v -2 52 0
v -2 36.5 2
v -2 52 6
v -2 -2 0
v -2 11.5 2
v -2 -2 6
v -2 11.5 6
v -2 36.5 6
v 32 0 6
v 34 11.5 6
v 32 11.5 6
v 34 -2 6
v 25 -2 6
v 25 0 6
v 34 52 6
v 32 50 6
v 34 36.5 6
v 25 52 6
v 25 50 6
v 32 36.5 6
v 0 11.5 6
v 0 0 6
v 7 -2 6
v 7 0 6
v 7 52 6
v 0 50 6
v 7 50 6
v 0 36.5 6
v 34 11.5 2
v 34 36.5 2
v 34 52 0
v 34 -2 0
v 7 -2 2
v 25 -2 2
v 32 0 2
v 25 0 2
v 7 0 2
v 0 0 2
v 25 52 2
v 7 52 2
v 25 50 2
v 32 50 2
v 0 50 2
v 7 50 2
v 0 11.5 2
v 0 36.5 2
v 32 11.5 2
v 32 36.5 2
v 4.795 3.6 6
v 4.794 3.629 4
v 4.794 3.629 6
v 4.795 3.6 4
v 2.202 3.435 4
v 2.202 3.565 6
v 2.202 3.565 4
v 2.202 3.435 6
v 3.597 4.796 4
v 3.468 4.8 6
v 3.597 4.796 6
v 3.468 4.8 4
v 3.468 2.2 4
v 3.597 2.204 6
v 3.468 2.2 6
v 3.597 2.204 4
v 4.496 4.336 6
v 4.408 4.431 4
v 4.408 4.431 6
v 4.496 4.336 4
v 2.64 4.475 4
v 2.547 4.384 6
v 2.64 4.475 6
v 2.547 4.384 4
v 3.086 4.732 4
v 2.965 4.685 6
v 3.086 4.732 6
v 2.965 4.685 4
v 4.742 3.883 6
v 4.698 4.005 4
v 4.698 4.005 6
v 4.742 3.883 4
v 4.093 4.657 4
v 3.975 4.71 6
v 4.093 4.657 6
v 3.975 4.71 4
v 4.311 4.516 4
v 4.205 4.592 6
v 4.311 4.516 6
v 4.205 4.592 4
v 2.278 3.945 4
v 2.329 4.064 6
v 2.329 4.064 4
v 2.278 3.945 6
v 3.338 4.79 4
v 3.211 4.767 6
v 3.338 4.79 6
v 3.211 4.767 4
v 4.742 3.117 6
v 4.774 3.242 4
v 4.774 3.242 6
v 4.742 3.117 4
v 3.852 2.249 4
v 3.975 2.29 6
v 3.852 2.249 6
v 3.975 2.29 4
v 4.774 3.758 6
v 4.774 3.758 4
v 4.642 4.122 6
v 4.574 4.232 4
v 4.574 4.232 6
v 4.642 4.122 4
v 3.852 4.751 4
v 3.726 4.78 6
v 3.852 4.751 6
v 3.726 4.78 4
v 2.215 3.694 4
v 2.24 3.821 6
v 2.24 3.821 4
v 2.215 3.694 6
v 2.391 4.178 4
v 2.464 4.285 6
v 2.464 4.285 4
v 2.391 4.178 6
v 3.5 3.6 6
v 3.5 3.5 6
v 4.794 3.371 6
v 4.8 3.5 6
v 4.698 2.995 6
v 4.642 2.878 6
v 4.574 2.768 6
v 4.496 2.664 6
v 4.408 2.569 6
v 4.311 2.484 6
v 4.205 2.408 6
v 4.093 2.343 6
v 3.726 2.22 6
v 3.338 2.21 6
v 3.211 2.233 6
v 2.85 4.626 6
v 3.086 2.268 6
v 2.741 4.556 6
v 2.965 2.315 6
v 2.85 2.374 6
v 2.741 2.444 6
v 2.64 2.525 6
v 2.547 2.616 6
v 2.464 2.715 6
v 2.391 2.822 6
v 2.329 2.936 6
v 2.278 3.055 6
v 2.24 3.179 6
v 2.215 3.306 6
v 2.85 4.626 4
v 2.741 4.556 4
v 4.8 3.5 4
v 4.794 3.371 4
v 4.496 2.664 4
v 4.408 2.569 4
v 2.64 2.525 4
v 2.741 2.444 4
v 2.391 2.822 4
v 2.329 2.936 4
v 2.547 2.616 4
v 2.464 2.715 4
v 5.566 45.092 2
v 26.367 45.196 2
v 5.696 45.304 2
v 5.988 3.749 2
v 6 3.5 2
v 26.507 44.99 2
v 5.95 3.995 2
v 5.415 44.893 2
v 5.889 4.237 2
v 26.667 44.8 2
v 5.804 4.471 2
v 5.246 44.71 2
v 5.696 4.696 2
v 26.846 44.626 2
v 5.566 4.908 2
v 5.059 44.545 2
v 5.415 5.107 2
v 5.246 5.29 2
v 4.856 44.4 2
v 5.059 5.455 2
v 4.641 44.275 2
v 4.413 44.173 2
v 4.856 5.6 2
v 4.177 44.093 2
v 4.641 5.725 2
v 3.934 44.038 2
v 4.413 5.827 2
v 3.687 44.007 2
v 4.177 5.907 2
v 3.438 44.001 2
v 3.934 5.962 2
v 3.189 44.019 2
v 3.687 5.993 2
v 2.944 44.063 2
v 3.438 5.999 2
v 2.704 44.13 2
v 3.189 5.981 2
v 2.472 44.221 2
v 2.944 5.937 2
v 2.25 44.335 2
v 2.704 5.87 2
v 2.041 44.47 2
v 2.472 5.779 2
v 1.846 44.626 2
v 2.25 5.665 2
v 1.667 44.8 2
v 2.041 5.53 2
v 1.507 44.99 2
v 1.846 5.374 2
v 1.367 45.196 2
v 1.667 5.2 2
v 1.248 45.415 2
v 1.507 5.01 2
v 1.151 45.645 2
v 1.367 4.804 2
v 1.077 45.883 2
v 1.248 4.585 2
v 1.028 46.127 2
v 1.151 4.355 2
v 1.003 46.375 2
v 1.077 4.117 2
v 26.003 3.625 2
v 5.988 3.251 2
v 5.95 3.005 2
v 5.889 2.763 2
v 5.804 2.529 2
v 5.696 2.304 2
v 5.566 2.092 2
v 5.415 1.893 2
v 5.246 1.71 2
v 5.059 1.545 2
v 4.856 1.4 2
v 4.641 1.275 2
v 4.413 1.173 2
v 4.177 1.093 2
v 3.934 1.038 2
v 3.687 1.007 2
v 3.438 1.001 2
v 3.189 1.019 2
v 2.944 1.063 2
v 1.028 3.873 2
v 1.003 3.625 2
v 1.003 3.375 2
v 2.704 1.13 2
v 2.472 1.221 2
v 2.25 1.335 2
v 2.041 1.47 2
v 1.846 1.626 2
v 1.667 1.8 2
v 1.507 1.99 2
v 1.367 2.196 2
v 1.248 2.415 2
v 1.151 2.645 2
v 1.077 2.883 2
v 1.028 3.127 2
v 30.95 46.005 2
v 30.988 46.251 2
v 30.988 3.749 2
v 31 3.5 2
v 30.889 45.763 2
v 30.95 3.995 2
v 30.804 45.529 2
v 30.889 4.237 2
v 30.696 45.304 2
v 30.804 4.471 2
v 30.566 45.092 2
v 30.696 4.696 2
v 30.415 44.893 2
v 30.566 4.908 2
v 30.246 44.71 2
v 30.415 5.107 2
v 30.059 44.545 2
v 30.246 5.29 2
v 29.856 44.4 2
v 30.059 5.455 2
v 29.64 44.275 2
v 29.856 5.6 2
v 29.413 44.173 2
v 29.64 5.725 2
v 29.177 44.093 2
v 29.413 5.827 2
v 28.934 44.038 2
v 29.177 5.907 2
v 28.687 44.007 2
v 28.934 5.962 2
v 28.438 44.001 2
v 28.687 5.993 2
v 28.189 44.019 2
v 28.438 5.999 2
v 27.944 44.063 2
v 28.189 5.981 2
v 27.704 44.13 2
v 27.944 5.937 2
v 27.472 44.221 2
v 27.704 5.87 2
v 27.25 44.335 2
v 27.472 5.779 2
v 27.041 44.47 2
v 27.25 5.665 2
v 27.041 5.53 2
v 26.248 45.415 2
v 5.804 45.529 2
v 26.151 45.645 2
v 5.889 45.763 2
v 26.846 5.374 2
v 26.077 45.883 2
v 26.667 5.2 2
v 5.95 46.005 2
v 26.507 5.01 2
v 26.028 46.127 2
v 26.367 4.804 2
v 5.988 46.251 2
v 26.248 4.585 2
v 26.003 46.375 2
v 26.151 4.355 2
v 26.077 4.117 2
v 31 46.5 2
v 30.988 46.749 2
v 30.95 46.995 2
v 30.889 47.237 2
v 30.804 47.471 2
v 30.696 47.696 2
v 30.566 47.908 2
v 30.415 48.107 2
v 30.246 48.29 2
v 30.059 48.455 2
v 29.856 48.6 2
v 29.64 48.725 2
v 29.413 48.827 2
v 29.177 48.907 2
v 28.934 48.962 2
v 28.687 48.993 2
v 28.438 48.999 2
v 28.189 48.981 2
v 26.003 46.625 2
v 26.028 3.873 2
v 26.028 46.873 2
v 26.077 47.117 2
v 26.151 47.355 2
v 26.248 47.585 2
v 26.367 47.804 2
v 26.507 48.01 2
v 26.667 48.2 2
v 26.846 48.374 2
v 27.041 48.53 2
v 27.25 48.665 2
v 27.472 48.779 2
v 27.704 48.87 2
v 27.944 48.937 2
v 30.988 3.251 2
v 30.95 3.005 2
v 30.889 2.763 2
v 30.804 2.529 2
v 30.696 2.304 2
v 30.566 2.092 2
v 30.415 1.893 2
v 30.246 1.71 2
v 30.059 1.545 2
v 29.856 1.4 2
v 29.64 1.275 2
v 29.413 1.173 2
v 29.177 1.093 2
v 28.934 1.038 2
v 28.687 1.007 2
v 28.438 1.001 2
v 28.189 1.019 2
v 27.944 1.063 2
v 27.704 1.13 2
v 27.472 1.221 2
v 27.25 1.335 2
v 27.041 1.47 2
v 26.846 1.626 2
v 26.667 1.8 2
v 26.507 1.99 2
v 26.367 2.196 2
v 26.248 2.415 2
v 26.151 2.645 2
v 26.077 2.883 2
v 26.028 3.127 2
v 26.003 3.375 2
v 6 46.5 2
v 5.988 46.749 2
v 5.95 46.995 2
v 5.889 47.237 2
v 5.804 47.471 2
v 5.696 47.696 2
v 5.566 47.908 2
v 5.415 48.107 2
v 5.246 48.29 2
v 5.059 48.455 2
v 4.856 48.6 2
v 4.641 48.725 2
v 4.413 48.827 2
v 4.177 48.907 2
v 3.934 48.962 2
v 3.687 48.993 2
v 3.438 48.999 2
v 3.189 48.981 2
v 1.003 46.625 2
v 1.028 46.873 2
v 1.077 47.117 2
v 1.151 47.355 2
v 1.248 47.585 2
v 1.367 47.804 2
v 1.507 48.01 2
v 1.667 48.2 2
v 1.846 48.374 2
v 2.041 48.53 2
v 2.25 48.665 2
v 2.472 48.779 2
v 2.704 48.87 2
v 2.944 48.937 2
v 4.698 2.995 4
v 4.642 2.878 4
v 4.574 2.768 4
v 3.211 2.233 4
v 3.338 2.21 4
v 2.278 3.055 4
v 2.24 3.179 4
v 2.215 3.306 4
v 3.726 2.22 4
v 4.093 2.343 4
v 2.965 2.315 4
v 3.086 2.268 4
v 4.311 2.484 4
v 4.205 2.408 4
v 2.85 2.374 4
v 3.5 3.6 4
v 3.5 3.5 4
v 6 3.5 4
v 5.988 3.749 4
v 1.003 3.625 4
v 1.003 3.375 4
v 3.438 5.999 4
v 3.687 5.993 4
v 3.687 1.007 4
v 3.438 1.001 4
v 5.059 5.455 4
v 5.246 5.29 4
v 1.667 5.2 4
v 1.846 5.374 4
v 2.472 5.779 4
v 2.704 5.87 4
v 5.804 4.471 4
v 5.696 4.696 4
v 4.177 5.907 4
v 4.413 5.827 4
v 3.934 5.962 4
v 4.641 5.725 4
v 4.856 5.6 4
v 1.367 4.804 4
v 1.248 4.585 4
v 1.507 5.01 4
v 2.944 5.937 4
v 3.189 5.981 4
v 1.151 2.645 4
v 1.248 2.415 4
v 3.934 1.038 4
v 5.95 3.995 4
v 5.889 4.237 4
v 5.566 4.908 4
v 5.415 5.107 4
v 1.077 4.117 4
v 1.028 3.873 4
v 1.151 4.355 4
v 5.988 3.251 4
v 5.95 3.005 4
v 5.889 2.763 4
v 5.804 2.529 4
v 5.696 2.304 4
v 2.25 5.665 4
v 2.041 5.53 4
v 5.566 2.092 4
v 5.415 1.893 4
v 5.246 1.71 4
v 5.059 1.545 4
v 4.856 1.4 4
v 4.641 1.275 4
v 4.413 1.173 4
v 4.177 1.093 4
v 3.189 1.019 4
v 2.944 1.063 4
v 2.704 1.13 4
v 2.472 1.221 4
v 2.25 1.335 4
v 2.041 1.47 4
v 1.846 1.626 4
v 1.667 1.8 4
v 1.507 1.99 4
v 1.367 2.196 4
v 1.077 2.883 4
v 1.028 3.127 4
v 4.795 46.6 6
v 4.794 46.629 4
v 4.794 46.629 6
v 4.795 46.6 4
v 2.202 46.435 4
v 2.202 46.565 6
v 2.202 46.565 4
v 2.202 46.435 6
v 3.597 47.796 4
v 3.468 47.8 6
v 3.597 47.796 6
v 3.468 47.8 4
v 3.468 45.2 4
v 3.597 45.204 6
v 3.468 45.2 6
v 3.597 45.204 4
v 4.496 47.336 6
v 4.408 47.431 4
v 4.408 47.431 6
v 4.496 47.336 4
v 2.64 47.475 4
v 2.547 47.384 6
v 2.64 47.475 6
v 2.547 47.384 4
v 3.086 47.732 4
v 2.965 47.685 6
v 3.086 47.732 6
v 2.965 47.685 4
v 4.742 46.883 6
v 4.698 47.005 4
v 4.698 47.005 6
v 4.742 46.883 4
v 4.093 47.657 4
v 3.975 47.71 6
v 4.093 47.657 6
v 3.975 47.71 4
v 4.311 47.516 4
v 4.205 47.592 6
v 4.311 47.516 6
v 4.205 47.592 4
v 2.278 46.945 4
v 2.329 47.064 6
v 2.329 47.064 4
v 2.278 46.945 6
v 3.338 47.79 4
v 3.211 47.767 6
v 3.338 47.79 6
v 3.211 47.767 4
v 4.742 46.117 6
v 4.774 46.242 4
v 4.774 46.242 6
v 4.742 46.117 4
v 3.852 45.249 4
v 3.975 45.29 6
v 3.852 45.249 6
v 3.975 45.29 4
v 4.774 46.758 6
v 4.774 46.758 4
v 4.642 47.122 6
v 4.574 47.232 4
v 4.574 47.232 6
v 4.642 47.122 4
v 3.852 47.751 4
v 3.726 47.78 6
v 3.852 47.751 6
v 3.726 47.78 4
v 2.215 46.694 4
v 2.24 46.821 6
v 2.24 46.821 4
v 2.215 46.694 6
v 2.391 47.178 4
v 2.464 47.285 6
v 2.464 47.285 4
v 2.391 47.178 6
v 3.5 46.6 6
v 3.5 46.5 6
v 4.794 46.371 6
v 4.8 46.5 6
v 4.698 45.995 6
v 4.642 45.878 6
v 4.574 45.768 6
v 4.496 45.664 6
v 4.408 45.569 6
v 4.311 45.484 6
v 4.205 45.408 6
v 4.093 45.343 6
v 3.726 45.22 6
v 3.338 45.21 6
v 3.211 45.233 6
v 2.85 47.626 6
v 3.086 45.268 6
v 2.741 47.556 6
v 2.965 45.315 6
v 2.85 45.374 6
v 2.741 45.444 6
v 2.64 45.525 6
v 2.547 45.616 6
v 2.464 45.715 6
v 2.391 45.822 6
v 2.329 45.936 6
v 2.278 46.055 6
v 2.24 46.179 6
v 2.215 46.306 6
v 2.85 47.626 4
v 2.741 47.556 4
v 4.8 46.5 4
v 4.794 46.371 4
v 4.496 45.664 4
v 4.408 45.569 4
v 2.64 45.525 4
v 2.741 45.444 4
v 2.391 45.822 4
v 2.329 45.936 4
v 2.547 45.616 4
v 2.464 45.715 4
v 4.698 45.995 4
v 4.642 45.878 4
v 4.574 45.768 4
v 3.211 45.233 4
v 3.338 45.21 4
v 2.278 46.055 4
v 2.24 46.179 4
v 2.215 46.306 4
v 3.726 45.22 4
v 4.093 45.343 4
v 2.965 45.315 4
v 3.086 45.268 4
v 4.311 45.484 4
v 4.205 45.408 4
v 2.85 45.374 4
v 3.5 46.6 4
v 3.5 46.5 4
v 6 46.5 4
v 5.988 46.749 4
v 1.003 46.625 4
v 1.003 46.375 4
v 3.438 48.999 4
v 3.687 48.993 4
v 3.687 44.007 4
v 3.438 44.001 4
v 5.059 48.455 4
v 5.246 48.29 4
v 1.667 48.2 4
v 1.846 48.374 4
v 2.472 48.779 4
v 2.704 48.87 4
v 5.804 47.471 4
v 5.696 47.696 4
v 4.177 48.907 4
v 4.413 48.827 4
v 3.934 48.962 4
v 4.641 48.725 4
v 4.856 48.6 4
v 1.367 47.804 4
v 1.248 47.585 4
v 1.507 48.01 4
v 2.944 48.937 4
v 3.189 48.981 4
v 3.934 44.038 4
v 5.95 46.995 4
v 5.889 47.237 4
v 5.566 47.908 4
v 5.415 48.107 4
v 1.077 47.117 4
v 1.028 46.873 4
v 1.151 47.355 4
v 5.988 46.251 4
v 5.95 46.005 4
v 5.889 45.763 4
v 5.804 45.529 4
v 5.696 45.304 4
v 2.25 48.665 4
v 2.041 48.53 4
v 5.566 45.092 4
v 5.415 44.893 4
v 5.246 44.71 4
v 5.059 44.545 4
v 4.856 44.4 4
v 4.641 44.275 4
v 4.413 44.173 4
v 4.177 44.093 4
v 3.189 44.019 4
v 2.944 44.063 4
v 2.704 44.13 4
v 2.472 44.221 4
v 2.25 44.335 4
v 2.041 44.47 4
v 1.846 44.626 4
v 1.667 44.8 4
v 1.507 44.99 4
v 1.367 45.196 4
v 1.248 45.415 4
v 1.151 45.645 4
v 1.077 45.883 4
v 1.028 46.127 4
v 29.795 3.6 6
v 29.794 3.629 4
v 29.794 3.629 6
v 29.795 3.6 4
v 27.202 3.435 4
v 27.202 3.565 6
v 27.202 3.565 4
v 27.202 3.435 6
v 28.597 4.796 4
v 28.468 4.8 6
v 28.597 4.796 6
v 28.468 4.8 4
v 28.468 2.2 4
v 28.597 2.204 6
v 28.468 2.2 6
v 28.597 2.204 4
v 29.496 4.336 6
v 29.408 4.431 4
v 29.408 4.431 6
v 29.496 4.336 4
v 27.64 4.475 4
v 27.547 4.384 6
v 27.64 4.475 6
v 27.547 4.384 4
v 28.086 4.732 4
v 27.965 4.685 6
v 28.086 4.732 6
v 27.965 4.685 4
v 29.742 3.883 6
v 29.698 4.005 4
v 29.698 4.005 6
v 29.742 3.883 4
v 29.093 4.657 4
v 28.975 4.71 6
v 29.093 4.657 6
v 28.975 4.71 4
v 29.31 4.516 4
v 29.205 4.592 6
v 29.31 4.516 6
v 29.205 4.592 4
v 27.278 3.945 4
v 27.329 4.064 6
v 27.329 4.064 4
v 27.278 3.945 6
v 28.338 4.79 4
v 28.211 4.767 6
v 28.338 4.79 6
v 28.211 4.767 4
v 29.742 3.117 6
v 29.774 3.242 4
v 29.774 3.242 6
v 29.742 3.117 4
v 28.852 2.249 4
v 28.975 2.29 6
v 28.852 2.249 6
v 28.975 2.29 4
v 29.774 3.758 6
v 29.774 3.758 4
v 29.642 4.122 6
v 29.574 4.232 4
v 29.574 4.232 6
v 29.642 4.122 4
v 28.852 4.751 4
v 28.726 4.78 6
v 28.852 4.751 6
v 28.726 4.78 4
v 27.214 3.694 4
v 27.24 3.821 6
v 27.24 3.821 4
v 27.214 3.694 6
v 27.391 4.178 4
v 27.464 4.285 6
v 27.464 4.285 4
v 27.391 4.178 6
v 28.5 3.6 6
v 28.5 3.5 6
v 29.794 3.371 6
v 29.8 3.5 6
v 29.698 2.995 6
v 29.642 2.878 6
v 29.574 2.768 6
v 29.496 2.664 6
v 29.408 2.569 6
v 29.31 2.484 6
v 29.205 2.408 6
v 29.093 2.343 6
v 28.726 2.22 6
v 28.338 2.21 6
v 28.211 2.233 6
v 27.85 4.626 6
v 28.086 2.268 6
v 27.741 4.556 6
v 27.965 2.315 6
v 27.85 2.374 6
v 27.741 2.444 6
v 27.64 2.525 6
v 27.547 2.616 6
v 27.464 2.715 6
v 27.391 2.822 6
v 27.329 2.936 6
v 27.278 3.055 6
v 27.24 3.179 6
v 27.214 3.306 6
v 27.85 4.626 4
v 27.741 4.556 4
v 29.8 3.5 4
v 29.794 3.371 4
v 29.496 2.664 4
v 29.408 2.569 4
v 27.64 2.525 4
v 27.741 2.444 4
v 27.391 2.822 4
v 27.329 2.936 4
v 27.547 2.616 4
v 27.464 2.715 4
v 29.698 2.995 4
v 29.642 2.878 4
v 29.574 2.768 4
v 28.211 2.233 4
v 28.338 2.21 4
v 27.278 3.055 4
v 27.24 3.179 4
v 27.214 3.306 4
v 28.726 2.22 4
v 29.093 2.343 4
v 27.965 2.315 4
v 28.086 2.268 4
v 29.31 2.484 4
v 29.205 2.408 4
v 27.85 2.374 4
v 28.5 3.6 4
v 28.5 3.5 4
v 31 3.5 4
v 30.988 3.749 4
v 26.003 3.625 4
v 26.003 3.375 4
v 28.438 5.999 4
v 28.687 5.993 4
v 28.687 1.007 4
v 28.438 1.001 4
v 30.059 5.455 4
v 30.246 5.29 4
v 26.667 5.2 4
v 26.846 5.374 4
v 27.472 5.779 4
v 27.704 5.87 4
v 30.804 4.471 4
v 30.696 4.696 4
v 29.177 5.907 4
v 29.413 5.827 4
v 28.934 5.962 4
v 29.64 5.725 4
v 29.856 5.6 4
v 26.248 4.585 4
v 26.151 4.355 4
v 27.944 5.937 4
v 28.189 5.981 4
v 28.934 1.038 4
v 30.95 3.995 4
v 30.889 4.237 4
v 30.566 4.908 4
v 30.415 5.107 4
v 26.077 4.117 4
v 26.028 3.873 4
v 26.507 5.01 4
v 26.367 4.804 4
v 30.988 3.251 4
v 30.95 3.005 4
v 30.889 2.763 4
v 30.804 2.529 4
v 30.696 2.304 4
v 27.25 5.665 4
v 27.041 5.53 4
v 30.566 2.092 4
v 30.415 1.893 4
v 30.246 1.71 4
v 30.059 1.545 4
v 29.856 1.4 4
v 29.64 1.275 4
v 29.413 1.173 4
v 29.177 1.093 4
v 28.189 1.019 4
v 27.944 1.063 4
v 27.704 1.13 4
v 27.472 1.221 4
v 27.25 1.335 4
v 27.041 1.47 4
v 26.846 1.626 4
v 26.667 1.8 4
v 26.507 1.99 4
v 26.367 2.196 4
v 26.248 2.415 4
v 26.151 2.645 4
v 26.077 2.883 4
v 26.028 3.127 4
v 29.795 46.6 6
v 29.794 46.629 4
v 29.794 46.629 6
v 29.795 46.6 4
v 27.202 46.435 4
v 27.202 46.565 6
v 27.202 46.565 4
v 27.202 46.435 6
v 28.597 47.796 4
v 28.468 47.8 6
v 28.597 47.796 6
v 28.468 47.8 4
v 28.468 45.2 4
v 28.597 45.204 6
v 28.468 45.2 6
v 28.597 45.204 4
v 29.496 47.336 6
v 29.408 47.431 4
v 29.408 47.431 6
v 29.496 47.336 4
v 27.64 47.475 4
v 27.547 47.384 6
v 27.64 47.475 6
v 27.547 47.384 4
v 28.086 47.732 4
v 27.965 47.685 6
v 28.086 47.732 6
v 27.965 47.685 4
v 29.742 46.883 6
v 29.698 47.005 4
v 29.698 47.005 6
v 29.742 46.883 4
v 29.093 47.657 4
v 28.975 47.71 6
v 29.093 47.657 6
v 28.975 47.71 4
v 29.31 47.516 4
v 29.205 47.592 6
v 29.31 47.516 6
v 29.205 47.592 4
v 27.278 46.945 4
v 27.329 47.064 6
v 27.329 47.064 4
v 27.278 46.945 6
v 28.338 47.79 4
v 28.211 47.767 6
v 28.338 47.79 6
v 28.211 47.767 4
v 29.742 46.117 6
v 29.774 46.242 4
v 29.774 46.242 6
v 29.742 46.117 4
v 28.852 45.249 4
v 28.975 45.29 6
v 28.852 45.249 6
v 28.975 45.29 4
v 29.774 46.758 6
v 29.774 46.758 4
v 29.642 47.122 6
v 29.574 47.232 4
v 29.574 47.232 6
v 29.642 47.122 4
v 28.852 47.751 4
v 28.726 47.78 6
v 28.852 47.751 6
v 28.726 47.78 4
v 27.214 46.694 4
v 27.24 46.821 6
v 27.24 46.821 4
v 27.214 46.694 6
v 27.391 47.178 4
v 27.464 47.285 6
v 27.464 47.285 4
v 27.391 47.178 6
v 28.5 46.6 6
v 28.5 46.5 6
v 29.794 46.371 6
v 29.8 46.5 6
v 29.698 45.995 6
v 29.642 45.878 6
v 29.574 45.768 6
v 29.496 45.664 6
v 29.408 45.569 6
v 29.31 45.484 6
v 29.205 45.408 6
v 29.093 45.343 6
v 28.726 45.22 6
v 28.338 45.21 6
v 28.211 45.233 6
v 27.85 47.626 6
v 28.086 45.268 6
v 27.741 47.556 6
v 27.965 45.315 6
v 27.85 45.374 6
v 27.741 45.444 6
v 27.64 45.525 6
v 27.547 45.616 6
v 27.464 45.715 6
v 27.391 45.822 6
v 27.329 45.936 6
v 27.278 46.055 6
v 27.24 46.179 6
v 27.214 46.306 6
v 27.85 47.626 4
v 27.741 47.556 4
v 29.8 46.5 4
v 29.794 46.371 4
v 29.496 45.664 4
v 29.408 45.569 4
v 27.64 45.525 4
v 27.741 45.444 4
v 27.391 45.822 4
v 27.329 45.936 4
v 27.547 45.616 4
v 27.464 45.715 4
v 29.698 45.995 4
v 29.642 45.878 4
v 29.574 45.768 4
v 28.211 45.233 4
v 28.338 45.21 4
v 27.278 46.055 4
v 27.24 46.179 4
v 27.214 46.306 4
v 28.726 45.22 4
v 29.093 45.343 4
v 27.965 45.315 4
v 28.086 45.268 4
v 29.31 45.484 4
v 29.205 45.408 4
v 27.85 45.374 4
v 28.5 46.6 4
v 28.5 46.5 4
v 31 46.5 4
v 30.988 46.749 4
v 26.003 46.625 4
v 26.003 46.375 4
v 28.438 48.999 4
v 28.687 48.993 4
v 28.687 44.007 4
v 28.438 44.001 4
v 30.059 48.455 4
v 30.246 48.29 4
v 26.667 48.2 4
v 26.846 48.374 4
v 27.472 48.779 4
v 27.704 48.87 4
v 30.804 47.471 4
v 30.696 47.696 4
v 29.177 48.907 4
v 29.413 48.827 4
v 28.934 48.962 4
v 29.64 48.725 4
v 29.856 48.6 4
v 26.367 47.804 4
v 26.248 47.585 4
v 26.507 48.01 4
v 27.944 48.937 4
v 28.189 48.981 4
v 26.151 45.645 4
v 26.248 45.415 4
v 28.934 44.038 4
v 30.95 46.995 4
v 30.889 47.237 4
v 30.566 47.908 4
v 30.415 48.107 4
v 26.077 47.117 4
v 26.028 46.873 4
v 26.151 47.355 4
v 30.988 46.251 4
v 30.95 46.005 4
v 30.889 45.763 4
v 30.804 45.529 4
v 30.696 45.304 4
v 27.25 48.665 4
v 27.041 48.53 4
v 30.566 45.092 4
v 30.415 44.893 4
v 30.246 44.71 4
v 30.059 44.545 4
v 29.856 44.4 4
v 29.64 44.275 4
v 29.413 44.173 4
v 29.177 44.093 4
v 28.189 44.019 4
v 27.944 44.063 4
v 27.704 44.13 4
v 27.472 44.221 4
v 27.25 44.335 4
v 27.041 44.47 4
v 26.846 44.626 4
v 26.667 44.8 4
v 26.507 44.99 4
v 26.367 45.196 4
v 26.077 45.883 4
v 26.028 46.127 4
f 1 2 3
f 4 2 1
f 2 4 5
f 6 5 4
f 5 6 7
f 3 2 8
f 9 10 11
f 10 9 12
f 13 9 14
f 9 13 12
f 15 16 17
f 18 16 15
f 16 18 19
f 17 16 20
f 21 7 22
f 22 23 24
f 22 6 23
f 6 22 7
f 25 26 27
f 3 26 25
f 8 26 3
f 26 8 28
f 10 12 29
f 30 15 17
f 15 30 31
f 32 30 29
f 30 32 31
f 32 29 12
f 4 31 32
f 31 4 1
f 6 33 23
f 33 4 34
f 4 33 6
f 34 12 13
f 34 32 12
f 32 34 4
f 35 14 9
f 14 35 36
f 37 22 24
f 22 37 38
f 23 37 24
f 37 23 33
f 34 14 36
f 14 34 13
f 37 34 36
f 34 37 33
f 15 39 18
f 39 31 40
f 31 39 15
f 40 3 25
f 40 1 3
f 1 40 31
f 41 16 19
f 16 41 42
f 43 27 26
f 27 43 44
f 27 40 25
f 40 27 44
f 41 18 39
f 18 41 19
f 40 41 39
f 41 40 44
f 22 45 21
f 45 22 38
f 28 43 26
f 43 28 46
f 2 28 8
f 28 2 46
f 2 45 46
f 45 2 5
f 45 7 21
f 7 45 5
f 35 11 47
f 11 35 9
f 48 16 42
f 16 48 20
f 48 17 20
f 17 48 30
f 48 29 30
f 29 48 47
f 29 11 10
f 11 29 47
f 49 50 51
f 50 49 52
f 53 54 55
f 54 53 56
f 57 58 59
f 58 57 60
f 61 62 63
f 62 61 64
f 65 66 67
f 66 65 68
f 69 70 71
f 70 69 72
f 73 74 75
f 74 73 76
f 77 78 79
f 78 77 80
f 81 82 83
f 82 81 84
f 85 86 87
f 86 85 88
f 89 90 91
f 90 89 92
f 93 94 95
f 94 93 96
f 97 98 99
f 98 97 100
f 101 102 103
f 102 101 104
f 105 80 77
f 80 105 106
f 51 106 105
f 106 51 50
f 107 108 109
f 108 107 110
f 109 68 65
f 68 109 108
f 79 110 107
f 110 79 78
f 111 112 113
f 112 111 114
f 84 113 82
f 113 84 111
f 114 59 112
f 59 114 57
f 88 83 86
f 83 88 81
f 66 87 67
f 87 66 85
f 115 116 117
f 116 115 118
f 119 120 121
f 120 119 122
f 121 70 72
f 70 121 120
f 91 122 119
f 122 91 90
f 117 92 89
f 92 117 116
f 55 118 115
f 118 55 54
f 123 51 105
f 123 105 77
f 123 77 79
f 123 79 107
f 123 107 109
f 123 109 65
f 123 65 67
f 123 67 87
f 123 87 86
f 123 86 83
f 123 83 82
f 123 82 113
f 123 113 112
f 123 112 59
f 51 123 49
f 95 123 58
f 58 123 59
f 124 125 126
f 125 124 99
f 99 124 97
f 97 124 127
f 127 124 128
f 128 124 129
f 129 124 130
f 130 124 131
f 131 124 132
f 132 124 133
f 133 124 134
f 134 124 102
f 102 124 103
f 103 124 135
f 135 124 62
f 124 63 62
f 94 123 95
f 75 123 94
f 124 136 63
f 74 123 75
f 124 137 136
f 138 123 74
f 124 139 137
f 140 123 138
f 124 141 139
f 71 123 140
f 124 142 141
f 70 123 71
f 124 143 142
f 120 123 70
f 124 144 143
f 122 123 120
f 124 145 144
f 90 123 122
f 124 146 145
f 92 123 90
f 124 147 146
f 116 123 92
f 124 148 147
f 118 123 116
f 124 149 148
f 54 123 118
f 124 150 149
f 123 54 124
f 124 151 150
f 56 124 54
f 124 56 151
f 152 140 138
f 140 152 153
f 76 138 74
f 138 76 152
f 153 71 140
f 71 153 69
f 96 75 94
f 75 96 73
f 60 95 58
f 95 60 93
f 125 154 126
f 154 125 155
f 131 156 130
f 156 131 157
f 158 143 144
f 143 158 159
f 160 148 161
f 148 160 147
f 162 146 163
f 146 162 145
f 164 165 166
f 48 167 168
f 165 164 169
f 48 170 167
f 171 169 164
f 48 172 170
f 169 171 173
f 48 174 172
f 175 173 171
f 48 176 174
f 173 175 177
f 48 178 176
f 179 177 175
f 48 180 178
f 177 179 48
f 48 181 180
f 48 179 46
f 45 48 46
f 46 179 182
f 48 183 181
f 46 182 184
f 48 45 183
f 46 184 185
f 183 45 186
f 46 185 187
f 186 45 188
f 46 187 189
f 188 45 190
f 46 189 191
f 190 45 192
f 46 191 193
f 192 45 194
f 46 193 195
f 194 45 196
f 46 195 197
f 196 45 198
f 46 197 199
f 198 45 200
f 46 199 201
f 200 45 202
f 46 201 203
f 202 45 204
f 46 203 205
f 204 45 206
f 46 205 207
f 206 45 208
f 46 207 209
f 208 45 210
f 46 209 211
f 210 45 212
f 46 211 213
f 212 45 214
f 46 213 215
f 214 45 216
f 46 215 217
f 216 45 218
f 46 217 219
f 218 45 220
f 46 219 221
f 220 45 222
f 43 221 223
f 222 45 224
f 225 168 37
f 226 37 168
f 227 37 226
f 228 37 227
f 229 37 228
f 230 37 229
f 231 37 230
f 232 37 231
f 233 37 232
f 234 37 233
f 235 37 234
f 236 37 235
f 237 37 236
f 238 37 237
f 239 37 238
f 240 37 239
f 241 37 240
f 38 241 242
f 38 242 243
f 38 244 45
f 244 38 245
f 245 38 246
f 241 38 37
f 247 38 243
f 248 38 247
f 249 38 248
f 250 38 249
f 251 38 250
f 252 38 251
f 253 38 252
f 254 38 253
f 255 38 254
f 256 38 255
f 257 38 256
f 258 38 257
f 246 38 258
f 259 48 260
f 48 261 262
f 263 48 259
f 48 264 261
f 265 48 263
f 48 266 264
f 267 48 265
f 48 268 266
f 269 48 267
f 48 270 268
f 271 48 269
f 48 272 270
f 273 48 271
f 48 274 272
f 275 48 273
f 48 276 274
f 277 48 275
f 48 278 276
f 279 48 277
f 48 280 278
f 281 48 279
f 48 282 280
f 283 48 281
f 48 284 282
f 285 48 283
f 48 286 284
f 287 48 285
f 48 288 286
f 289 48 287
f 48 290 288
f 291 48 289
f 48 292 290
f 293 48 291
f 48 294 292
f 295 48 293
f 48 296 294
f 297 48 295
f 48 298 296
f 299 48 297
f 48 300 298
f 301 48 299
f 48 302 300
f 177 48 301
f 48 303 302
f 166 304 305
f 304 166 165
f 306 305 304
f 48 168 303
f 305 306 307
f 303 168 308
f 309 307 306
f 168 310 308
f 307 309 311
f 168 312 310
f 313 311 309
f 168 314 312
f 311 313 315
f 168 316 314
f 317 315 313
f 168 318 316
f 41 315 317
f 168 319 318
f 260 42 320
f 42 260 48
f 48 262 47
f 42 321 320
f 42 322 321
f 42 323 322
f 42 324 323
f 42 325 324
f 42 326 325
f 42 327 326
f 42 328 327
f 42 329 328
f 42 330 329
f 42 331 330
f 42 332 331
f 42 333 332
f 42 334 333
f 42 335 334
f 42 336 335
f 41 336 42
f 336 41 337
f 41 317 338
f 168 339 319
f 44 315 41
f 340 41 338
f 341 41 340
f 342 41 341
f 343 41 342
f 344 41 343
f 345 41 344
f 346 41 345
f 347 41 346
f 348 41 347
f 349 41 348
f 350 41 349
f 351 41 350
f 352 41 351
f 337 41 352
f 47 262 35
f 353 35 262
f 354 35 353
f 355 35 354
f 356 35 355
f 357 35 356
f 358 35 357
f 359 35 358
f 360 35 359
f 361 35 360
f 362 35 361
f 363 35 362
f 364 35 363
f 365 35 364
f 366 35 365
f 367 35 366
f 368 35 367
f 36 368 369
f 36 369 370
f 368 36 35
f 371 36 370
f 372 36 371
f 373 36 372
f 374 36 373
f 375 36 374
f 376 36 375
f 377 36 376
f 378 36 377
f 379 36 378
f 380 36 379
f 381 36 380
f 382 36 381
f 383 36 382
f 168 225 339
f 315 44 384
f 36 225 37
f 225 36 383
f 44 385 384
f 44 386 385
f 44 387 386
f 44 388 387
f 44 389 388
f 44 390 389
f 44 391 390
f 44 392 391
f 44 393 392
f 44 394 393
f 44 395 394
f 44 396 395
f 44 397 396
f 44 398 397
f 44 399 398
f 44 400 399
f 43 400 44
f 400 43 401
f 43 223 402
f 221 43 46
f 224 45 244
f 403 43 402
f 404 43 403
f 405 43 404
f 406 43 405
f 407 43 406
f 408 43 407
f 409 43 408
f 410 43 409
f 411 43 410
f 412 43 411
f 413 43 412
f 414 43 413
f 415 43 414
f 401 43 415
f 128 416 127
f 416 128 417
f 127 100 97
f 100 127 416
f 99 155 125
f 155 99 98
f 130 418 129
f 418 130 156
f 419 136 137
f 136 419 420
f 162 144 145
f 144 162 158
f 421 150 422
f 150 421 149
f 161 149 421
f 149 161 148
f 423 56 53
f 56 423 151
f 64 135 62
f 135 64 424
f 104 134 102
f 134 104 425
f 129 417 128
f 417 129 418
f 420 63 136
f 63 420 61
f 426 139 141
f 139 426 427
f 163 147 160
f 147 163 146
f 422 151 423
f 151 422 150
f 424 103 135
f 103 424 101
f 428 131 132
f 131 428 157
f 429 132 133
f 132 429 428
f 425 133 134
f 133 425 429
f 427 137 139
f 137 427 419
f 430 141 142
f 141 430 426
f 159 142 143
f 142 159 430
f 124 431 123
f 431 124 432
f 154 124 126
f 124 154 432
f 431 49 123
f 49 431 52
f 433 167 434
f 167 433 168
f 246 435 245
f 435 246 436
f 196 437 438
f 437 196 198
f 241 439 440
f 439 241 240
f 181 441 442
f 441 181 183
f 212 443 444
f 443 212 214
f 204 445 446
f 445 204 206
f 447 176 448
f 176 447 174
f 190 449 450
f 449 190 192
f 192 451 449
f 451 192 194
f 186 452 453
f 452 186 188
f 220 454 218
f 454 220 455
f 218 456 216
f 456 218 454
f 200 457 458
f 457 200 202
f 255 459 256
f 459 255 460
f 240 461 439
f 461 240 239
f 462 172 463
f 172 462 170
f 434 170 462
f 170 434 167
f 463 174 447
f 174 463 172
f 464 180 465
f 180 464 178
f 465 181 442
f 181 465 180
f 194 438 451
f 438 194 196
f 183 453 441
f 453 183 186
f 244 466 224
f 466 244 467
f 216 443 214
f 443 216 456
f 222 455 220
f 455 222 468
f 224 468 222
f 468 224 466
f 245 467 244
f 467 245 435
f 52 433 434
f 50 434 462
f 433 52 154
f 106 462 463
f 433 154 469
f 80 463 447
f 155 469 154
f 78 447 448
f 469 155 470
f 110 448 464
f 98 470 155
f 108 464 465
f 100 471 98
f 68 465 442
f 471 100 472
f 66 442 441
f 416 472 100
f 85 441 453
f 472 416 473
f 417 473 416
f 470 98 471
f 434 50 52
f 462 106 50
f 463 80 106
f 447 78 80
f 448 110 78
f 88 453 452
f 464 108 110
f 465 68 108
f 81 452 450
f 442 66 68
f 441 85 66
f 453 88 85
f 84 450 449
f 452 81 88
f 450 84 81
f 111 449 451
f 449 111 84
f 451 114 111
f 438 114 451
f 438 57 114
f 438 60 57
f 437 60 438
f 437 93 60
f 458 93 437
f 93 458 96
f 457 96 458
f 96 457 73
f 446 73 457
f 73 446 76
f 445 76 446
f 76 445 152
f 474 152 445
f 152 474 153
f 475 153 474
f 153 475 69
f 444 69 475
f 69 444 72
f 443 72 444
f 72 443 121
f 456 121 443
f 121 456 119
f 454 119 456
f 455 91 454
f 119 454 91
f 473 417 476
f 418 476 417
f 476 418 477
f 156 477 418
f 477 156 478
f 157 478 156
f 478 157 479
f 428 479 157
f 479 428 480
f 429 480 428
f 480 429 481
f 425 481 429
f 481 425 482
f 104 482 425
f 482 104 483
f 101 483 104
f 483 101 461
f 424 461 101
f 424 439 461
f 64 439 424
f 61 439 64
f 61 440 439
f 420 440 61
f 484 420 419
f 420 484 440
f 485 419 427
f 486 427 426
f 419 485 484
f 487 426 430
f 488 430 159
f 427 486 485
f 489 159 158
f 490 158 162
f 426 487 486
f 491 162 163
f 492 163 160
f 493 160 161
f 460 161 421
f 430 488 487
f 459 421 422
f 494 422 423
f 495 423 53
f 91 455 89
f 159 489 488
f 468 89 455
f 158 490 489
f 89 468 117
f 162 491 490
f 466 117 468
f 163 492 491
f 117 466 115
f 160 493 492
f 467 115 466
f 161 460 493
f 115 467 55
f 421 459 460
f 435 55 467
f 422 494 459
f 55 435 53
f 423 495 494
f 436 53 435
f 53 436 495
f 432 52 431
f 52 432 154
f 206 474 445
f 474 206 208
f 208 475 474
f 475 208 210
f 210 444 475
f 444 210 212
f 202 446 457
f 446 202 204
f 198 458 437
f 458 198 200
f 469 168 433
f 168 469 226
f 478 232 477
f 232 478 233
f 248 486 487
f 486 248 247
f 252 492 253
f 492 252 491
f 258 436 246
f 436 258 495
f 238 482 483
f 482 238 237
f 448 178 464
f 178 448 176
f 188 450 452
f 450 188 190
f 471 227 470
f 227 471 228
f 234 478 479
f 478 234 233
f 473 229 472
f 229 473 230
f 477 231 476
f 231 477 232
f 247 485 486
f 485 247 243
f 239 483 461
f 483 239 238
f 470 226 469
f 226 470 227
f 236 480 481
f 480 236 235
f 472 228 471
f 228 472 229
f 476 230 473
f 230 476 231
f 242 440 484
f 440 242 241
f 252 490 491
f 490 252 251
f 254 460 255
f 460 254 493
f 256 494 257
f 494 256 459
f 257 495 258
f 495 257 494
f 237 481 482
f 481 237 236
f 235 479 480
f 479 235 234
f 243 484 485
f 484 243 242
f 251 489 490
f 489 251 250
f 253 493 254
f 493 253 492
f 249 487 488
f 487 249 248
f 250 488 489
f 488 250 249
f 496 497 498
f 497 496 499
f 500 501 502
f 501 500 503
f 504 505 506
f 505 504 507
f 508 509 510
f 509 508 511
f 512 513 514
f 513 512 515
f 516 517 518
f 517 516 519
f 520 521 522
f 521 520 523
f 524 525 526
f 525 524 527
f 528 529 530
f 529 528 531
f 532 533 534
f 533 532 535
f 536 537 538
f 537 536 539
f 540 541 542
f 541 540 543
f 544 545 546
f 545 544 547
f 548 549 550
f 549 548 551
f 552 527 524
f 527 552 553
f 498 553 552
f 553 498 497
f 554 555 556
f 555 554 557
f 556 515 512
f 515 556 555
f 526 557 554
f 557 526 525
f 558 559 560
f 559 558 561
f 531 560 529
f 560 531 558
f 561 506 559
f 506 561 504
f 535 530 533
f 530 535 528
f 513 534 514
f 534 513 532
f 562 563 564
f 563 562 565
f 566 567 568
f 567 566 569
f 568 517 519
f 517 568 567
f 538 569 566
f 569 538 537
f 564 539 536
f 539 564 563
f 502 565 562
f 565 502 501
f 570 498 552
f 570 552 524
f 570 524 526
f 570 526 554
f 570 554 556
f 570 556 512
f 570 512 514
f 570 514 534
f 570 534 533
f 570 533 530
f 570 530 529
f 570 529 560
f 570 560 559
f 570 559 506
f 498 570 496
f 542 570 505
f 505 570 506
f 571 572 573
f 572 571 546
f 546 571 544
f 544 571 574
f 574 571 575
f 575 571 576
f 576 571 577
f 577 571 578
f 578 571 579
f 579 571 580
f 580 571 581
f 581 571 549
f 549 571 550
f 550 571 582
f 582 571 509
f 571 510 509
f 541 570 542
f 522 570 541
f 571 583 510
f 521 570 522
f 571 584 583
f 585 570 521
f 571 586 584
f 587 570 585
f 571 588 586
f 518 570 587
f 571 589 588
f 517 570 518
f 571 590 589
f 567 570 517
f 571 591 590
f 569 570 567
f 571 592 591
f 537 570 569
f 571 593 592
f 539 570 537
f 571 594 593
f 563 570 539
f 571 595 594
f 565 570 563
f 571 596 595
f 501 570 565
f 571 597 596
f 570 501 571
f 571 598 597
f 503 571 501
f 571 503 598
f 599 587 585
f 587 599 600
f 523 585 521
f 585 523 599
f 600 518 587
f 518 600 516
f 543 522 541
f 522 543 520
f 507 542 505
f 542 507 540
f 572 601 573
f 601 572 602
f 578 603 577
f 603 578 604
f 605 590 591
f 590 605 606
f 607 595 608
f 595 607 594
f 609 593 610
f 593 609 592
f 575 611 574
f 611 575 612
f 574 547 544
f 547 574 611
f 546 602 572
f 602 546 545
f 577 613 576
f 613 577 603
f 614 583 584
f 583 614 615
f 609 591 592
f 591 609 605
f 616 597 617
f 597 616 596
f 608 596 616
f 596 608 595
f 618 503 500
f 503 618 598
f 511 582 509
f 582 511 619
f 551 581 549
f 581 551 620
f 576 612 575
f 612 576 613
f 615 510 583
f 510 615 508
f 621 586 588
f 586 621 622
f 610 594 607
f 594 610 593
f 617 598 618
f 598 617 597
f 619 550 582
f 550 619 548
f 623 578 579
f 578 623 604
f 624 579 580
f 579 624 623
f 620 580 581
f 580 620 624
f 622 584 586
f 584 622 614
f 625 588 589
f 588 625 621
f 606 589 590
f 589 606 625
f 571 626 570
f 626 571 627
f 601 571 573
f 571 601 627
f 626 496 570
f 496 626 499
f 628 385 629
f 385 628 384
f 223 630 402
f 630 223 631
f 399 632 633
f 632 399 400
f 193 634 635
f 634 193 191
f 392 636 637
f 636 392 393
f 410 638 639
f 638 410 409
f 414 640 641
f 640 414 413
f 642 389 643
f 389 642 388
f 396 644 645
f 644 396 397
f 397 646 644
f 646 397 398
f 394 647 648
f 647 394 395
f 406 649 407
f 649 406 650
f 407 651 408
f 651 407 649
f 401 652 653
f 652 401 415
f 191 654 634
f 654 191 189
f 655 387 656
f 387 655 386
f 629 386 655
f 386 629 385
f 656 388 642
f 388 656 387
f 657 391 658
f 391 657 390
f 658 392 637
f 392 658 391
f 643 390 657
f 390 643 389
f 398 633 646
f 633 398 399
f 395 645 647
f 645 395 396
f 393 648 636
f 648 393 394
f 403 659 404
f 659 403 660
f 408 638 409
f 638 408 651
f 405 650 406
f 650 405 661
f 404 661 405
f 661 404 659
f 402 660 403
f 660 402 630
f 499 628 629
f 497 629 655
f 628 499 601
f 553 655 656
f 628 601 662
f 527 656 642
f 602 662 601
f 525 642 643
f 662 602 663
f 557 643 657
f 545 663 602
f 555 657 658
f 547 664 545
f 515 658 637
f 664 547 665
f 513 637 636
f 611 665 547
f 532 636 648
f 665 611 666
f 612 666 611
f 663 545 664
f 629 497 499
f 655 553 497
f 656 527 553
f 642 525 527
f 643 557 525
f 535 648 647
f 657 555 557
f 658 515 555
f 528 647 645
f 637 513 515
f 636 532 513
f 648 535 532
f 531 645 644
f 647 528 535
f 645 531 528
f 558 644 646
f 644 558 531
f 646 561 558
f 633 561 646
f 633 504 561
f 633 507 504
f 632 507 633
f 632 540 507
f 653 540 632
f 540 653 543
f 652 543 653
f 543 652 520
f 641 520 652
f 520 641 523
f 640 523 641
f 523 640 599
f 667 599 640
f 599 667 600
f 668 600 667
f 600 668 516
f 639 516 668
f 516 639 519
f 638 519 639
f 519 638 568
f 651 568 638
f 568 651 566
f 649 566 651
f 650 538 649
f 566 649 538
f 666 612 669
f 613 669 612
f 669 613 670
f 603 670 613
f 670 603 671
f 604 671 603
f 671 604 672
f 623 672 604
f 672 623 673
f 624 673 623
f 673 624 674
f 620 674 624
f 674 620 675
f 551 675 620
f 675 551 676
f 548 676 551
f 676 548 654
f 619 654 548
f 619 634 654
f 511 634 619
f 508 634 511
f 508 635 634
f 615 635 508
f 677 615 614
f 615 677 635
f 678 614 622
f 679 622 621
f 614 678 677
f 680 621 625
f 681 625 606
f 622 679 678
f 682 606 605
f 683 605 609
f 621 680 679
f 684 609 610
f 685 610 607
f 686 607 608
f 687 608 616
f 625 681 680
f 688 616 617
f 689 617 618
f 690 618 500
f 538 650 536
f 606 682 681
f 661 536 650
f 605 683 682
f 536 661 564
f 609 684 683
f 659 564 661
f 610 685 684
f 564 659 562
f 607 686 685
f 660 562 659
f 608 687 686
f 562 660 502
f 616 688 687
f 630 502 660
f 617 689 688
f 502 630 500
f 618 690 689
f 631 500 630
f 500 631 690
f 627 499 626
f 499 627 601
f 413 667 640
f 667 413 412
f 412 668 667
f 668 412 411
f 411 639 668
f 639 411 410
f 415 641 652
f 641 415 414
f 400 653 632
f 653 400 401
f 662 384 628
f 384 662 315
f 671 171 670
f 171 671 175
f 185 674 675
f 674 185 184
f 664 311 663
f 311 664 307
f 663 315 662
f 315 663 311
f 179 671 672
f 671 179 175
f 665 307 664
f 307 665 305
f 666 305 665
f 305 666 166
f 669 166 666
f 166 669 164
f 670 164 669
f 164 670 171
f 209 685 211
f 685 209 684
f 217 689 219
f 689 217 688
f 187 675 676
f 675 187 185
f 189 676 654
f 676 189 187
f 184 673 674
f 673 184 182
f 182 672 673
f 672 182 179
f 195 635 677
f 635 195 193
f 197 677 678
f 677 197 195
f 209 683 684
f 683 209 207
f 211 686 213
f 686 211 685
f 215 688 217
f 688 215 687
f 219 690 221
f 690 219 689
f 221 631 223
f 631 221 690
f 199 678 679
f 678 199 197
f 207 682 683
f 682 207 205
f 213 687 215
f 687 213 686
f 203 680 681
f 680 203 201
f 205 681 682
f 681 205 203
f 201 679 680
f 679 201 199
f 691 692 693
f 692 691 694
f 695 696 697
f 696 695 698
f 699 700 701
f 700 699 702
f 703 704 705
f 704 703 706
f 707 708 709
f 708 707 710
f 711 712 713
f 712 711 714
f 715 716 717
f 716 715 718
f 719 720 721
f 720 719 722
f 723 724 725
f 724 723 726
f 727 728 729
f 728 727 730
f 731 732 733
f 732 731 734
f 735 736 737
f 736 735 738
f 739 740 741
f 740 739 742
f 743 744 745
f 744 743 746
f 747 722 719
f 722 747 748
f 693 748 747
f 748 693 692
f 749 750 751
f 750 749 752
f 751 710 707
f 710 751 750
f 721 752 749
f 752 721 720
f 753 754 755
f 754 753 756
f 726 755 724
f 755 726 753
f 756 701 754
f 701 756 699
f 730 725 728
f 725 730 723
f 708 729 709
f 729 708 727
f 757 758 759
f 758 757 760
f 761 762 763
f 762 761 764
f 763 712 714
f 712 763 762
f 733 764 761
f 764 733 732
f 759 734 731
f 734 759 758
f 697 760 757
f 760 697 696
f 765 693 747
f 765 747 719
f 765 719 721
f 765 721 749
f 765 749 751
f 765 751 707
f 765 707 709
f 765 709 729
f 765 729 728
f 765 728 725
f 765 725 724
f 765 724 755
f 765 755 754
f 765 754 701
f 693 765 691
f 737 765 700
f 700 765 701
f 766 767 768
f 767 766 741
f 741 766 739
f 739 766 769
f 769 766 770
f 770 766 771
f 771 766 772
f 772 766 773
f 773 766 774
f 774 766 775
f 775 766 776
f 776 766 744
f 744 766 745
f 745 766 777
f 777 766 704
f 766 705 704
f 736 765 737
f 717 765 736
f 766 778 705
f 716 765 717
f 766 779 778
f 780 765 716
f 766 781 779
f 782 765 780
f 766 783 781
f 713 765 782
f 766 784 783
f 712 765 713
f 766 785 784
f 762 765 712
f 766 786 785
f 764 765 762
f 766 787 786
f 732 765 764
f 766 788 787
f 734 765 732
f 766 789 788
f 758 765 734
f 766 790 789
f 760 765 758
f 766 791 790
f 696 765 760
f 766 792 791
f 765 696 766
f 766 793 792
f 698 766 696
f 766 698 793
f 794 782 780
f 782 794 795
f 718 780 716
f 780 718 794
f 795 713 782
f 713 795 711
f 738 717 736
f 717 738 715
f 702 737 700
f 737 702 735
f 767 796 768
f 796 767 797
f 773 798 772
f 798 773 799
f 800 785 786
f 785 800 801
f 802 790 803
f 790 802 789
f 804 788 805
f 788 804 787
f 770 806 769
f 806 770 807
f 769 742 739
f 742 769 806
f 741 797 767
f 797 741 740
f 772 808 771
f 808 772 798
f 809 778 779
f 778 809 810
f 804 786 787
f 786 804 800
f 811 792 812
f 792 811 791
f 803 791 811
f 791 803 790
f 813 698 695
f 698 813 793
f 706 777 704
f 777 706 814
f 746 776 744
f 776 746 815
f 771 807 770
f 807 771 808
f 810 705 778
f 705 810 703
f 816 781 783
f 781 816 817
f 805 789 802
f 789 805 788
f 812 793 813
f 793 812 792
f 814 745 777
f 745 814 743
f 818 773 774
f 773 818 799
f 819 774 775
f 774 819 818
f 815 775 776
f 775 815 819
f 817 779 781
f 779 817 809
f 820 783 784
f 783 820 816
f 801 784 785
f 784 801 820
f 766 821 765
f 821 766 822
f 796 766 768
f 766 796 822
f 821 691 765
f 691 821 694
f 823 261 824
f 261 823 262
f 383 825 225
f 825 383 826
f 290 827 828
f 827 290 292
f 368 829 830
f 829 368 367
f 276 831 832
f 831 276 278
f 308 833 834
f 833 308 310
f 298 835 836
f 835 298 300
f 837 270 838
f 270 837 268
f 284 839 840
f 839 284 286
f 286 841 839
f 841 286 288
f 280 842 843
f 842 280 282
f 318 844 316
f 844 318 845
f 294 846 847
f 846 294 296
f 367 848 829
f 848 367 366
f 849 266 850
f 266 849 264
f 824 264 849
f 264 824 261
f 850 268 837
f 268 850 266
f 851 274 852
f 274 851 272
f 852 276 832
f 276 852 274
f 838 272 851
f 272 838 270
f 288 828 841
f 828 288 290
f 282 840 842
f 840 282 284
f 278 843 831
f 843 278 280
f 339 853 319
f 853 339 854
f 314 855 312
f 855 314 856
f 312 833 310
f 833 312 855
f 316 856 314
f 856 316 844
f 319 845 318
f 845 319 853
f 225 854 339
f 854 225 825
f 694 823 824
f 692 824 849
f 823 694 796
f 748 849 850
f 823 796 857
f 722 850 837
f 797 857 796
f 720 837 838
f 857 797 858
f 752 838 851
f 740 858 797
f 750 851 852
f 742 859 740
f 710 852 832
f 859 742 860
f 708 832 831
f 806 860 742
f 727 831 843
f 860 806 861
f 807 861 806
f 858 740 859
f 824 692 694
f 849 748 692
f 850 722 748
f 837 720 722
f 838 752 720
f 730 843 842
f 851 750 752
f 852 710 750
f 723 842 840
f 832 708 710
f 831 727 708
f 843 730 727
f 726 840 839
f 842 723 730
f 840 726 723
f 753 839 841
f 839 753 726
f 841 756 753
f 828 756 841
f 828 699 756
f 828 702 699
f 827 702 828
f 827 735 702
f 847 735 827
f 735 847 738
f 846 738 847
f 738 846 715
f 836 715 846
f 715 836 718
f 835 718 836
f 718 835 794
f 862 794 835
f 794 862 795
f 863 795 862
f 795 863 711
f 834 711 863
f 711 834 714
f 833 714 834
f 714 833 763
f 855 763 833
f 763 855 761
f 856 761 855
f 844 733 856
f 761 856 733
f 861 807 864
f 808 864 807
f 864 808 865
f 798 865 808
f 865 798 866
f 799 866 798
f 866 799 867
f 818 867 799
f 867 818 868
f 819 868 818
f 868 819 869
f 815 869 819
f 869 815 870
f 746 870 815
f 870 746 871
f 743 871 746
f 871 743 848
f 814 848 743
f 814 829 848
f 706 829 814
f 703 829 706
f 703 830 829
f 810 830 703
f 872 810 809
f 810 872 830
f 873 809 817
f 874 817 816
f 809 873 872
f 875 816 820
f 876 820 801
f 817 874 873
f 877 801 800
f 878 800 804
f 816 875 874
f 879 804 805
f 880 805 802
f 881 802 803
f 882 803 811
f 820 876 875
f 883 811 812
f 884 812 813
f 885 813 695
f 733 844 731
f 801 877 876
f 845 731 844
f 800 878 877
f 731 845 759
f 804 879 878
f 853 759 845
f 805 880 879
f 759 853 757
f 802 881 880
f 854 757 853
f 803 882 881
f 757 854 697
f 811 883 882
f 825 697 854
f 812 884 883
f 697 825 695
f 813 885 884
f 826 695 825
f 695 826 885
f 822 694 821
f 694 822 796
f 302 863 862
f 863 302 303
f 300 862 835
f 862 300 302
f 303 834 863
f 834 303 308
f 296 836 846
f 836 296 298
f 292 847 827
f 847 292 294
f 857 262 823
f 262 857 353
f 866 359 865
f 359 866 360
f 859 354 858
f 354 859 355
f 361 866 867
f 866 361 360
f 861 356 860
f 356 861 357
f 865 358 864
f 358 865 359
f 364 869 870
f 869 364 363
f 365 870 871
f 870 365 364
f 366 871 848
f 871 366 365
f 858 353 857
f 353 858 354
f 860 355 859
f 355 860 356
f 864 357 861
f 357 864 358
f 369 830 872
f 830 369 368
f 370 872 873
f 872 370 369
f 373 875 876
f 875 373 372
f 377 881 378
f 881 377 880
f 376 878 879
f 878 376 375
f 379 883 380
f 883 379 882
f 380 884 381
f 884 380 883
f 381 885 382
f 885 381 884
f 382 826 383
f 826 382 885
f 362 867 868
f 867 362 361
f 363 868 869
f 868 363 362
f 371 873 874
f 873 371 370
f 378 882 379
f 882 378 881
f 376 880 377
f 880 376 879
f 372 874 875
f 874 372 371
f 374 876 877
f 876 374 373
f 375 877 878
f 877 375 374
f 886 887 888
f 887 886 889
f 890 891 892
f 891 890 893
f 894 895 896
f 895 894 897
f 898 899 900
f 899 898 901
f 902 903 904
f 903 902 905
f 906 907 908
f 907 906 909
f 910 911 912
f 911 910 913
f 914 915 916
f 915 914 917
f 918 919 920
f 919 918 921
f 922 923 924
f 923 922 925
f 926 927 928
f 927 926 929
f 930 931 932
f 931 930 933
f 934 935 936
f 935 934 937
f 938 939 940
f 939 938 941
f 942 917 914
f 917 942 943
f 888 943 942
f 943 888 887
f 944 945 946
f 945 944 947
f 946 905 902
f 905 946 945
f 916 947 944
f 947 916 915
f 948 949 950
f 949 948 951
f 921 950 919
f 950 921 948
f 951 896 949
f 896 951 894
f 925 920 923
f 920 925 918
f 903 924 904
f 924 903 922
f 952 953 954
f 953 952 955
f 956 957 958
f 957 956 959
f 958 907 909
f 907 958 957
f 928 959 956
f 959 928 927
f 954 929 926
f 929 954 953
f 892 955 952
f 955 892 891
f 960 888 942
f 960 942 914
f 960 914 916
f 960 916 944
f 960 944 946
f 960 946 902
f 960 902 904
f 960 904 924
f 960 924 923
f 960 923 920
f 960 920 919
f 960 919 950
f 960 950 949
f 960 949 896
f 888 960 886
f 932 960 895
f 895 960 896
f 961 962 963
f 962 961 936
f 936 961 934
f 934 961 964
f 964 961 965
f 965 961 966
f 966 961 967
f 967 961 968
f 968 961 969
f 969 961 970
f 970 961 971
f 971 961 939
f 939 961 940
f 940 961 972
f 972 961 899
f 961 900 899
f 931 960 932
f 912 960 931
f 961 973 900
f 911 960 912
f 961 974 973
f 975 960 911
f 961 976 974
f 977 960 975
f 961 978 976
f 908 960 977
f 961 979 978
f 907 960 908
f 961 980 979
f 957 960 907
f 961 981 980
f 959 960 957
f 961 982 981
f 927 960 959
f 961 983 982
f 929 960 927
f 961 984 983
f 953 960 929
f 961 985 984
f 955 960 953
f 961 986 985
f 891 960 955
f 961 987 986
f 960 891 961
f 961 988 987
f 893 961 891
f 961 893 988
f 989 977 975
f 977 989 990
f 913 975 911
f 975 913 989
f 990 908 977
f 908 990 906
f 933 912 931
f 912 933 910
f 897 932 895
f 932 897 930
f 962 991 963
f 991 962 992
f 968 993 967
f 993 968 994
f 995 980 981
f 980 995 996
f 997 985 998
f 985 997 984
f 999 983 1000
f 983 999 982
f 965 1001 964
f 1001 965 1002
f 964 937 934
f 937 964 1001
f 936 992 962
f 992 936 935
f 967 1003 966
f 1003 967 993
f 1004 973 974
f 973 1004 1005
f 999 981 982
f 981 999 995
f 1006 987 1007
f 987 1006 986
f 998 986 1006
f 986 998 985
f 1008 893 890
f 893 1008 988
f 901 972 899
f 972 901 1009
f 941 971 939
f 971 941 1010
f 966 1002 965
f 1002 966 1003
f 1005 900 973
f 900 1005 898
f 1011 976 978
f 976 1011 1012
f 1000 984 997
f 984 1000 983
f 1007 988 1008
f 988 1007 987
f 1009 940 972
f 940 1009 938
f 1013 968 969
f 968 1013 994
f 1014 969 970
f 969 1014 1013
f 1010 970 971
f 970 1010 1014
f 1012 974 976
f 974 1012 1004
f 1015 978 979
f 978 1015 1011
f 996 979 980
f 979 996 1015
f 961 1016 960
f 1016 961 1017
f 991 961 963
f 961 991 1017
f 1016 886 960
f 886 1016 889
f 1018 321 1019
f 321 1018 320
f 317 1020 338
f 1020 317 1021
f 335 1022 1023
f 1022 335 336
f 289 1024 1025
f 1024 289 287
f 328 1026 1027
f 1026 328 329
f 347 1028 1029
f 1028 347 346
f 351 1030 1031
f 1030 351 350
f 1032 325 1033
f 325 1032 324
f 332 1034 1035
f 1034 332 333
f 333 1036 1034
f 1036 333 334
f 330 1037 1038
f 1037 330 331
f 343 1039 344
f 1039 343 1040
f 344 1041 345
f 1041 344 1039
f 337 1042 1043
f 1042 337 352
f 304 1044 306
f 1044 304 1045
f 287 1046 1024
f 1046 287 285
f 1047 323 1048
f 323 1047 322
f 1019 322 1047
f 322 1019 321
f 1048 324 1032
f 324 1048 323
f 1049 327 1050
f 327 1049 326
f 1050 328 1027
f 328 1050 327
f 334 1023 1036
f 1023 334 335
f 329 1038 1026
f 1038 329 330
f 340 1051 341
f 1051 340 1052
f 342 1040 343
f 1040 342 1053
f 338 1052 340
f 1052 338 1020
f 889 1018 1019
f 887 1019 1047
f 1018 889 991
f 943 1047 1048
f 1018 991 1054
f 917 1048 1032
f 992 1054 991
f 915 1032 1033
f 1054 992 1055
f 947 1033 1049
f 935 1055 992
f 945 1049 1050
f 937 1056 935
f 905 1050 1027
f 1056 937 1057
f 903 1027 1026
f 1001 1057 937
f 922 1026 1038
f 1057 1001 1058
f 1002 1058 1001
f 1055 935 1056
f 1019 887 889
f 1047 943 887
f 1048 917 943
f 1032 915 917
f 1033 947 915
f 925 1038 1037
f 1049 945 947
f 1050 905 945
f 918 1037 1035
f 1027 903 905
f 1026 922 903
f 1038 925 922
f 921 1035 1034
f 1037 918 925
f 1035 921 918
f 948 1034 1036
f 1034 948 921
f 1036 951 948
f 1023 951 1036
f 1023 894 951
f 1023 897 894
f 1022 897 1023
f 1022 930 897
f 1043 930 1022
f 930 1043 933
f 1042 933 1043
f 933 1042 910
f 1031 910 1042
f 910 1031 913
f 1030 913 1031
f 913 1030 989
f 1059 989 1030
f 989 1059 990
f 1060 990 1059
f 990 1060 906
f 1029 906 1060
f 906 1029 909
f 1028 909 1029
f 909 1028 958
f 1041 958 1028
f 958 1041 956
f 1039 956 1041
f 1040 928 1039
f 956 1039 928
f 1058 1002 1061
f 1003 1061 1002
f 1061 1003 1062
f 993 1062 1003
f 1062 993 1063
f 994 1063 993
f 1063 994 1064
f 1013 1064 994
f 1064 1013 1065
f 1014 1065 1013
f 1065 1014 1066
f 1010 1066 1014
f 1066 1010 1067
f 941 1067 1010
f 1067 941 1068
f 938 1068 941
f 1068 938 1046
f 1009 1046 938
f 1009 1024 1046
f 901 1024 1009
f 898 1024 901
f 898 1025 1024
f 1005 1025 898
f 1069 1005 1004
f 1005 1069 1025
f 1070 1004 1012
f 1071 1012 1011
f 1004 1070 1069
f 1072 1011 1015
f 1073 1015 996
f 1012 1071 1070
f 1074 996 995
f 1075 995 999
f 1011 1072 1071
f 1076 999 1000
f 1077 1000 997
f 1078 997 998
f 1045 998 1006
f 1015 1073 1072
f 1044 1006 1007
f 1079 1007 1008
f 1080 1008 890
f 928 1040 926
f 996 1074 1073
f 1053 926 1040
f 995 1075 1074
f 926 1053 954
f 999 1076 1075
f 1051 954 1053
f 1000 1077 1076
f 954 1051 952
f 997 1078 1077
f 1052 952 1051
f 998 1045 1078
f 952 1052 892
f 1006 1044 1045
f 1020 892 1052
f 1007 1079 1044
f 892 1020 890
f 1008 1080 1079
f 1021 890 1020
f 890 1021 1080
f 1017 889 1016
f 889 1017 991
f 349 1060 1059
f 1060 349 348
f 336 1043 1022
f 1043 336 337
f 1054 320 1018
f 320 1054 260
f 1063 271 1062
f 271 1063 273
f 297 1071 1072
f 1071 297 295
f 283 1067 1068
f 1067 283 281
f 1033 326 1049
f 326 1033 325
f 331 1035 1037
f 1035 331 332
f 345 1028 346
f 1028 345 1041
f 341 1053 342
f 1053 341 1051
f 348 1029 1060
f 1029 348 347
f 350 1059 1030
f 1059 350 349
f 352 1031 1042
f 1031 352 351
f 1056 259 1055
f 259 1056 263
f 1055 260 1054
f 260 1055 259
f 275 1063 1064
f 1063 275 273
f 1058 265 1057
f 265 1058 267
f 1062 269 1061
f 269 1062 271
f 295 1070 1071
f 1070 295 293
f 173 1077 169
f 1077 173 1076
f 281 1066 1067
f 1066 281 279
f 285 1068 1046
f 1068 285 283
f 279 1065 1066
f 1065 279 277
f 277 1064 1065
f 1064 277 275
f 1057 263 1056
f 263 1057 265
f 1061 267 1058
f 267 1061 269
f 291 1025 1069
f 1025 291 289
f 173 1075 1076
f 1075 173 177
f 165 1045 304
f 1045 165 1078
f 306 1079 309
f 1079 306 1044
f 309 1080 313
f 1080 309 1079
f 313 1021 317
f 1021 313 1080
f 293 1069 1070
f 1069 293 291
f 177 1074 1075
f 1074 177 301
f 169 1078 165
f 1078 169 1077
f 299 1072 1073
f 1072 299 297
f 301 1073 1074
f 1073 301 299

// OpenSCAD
$fn = 63;

board_w = 31+1;
board_h = 49+1;

p = 1.3;

translate([0,0,2]) {
  translate([3+.5,3+.5,0]) {
    cylinder(h = 2, r = 2.5);
    difference() {
      cylinder(h = 4, r = p);
      cube([p,0.1,4]);
    }
  }
  translate([3+.5,board_h-3-.5,0]) {
    cylinder(h = 2, r = 2.5);
    difference() {
      cylinder(h = 4, r = p);
      cube([p,0.1,4]);
    }
  }
  translate([board_w-3-.5,3+.5,0]) {
    cylinder(h = 2, r = 2.5);
    difference() {
      cylinder(h = 4, r = p);
      cube([p,0.1,4]);
    }
  }
  translate([board_w-3-.5,board_h-3-.5,0]) {
    cylinder(h = 2, r = 2.5);
    difference() {
      cylinder(h = 4, r = p);
      cube([p,0.1,4]);
    }
  }
}

translate([0,0,0]) {
  #cube([board_w,board_h,2]);
}

difference() {
  translate([-2,-2,0]) {
    cube([board_w+4,2,6]);
  }
  translate([(board_w+4)/2-(board_w+4)/4-2,-2,2]) {
    cube([(board_w+4)/2,2,4]);
  }
}

difference() {
  translate([-2,board_h,0]) {
    cube([board_w+4,2,6]);
  }
  translate([(board_w+4)/2-(board_w+4)/4-2,board_h,2]) {
    cube([(board_w+4)/2,2,4]);
  }
}

difference() {
  translate([-2,-2,0]) {
    cube([2,board_h+4,6]);
  }
  translate([-2,(board_h+4)/2-(board_h+4)/4-2,2]) {
    #cube([2,board_h/2,4]);
  }
}

difference() {
  translate([board_w,-2,0]) {
    cube([2,board_h+4,6]);
  }
  translate([board_w,(board_h+4)/2-(board_h+4)/4-2,2]) {
    #cube([2,board_h/2,4]);
  }
}
